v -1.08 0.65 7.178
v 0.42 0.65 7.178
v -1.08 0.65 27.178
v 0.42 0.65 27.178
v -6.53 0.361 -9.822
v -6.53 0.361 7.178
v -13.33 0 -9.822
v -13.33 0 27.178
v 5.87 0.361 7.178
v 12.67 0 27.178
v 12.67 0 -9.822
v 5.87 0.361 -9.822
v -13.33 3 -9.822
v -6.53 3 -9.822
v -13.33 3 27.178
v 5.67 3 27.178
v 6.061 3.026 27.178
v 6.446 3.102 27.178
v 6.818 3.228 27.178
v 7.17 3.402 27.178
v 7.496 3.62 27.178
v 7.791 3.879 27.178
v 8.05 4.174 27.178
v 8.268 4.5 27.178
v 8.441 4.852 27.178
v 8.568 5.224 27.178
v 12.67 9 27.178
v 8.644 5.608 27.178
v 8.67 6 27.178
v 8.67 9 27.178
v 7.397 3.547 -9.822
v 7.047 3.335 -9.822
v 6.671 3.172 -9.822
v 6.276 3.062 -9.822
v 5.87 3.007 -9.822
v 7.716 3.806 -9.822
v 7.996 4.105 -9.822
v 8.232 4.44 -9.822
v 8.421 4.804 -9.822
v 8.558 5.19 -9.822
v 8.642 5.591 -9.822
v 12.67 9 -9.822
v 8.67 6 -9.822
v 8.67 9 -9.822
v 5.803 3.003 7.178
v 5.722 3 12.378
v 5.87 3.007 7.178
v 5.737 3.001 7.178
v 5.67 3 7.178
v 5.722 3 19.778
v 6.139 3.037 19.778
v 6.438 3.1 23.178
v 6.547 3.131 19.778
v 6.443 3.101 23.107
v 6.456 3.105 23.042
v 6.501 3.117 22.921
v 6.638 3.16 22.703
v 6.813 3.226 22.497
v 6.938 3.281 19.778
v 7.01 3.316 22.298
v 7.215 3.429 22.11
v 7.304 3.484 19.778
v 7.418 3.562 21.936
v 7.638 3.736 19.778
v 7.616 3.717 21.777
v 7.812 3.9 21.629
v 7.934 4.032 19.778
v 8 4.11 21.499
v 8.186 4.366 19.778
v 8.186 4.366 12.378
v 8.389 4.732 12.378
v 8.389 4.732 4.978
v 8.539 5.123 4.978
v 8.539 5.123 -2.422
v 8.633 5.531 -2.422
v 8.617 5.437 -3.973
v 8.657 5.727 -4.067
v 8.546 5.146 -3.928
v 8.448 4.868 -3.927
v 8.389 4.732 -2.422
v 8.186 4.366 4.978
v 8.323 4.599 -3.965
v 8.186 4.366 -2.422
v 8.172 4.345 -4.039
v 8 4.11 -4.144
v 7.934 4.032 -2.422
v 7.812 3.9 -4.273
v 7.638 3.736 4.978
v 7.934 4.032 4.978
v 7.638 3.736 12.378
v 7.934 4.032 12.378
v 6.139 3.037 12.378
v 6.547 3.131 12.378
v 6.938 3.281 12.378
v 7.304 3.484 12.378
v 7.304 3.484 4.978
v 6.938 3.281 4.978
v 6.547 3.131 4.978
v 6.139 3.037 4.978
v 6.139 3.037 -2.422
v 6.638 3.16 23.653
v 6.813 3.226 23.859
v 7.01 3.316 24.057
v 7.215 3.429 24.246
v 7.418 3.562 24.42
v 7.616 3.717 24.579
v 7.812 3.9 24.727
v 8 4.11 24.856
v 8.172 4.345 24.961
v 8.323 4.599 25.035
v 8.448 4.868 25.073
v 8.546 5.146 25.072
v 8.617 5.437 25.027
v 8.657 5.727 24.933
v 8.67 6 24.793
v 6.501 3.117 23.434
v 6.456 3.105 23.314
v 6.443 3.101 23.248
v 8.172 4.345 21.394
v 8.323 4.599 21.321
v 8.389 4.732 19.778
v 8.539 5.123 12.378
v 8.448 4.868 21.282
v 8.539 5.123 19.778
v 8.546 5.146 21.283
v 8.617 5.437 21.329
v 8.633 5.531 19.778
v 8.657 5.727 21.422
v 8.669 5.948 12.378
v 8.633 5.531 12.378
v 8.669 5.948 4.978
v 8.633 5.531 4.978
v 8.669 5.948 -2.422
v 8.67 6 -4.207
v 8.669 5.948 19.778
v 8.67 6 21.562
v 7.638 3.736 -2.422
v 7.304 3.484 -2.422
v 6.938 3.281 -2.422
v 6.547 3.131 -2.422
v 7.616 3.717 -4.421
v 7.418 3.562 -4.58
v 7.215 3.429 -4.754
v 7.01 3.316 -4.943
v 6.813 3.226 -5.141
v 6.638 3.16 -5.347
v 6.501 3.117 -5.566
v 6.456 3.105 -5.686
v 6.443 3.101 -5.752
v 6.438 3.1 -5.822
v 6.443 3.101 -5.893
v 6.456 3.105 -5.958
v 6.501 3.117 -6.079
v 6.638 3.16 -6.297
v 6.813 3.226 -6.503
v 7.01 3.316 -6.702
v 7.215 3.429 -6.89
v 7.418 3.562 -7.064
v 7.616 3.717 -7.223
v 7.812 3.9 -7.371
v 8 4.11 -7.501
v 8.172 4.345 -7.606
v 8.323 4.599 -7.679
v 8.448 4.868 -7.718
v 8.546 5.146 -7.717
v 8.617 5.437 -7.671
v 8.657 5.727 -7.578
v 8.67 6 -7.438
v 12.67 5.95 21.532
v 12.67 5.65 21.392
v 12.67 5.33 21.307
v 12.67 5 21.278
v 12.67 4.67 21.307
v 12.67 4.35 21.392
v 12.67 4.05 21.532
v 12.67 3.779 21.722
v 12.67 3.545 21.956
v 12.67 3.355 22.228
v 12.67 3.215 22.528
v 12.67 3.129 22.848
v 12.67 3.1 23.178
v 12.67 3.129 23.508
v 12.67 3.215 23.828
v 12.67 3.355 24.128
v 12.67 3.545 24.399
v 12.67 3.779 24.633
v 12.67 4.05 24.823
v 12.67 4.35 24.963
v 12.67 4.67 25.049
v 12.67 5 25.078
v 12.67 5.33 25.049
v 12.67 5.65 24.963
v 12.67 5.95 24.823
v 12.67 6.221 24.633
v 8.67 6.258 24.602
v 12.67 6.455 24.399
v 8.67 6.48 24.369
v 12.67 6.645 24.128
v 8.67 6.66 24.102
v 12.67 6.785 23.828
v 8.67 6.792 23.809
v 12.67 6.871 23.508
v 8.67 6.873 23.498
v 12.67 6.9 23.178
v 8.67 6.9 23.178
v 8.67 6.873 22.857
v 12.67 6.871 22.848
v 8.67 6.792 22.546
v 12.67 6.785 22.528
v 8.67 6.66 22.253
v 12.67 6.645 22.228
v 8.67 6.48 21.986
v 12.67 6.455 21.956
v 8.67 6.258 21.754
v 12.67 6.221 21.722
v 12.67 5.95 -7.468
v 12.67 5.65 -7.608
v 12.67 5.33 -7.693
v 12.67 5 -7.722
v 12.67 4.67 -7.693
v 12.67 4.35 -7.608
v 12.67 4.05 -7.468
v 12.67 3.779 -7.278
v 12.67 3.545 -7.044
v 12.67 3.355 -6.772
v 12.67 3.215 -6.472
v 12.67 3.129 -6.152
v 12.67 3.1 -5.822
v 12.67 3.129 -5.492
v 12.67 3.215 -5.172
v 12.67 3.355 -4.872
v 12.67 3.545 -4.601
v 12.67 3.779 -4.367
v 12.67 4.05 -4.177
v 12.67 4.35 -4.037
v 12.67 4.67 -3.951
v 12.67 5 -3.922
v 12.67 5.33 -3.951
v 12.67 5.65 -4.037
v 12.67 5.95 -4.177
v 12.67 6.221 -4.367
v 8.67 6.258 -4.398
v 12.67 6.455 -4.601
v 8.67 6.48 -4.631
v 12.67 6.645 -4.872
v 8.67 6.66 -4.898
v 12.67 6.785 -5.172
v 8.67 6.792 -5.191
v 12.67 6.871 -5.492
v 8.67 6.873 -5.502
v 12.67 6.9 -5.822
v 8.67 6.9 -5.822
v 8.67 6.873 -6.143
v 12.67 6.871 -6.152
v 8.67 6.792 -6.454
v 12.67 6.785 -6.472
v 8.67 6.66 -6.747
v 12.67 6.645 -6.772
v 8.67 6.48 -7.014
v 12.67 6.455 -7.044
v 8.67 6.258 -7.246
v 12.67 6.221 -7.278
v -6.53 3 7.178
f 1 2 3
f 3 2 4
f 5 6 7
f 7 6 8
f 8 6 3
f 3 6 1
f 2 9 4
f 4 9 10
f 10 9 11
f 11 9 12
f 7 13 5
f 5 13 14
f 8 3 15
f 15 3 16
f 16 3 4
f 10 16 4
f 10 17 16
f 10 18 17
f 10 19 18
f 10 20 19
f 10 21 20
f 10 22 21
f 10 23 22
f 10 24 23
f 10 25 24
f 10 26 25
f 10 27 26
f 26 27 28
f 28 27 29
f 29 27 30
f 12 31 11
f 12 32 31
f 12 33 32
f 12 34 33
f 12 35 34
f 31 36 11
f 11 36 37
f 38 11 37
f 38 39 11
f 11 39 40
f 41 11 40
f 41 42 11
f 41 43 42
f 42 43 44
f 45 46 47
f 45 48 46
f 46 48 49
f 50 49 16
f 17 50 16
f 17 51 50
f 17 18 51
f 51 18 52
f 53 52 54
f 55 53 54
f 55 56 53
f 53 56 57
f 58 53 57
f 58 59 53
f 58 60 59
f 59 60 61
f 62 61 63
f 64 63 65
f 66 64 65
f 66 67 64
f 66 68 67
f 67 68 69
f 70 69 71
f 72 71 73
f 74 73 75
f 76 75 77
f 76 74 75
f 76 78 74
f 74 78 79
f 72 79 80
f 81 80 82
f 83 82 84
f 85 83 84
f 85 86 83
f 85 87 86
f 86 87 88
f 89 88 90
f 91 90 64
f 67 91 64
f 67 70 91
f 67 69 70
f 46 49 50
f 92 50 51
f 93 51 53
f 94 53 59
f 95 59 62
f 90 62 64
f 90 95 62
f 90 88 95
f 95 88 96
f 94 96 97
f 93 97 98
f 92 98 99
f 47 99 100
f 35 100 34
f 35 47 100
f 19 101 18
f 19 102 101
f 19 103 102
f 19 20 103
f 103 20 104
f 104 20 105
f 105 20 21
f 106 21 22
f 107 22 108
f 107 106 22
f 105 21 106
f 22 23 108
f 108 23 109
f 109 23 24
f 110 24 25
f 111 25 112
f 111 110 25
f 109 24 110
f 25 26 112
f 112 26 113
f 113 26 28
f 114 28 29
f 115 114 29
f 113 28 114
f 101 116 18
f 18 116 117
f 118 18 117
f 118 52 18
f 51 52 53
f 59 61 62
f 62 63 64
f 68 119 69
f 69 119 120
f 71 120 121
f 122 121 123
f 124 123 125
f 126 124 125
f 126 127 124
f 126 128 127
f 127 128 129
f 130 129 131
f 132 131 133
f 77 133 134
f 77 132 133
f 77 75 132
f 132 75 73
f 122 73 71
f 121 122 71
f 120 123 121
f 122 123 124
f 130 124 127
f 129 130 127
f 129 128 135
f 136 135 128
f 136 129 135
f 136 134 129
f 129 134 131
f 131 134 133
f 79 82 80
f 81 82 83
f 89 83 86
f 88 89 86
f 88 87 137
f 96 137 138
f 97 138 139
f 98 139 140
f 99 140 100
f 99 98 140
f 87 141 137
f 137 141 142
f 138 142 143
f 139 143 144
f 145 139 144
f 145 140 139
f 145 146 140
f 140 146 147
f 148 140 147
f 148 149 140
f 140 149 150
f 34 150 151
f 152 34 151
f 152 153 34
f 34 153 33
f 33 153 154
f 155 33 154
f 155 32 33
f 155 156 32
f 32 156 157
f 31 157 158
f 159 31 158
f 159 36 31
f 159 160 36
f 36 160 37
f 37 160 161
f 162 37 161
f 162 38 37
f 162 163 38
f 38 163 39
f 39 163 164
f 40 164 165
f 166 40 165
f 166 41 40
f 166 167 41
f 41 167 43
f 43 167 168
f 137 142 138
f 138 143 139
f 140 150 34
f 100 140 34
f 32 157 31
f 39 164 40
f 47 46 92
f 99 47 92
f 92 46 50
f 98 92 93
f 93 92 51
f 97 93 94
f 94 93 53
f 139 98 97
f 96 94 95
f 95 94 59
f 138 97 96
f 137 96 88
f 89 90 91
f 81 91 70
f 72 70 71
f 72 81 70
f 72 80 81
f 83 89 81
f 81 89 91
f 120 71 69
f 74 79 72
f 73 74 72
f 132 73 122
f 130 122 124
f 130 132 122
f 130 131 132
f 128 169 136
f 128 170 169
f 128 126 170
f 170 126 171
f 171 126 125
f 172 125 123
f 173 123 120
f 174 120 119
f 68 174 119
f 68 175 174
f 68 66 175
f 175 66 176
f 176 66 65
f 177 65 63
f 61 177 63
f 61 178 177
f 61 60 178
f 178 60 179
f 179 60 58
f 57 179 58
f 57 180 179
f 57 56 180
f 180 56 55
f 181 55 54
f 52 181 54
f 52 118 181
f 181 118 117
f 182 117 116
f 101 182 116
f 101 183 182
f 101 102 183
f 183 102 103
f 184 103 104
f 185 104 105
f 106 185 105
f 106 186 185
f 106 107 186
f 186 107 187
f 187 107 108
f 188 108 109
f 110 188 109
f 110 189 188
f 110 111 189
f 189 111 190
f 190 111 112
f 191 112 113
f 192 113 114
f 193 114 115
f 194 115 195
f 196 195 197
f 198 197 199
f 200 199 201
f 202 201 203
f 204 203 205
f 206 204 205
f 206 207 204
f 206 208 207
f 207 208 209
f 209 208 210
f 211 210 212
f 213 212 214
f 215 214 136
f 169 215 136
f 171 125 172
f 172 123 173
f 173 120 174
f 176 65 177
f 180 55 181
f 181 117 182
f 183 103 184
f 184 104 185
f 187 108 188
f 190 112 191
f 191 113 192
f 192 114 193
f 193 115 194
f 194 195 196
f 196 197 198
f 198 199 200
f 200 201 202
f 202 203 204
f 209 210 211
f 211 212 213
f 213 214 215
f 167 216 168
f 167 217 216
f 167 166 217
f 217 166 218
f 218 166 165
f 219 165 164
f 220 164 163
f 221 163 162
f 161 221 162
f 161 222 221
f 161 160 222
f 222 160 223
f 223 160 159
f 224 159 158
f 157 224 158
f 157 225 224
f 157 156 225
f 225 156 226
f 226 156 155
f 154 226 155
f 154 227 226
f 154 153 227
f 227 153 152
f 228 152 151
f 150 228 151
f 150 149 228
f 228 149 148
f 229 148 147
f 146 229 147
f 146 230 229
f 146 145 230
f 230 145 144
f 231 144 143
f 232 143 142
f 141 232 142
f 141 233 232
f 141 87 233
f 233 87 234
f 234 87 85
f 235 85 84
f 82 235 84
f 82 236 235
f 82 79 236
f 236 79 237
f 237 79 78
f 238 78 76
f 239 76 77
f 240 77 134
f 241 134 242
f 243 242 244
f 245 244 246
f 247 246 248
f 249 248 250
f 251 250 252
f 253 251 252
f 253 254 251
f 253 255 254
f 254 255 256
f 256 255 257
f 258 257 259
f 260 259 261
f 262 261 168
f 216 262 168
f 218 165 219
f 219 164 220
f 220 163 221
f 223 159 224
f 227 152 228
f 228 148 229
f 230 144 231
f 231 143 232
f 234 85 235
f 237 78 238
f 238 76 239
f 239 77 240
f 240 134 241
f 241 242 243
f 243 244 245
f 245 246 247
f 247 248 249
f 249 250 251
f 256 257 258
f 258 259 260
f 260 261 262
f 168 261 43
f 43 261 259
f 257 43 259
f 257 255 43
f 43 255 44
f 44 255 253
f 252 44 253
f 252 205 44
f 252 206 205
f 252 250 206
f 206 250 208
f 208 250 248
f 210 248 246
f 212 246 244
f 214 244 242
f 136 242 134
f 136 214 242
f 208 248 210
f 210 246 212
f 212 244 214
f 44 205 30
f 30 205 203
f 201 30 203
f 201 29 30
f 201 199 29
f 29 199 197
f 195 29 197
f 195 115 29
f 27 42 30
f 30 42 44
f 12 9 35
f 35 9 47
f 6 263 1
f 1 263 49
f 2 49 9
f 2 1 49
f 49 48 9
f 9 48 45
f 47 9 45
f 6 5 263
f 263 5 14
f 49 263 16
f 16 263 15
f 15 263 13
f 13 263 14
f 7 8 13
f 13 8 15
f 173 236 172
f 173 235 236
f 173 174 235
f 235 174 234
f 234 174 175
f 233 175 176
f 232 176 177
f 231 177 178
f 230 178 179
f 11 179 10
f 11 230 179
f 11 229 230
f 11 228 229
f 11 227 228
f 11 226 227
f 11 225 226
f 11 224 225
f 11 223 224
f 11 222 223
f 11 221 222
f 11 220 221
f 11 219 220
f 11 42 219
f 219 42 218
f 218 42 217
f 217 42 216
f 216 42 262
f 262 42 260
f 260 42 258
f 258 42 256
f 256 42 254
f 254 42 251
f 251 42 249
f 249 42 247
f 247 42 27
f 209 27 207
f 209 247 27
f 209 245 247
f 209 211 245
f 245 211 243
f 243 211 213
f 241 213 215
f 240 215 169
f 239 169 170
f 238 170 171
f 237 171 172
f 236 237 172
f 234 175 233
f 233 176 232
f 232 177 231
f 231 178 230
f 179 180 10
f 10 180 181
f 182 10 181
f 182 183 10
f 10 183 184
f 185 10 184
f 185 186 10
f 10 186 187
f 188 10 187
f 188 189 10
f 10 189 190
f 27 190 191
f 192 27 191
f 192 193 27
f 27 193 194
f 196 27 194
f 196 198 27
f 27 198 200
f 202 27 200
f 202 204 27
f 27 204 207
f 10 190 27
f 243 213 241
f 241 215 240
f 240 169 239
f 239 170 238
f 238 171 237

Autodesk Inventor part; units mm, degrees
ref_plane "YZ Plane" through (0, 0, 0) normal (1, 0, 0) x (0, 1, 0)
ref_plane "XZ Plane" through (0, 0, 0) normal (0, 1, 0) x (-1, 0, 0)
ref_plane "XY Plane" through (0, 0, 0) normal (0, 0, 1) x (1, 0, 0)
sketch "Sketch1" plane through (0, 0, 0) normal (0, 1, 0) x (-1, 0, 0)
  line L0 (13.3302, 27.1778) -> (-12.6698, 27.1778)
  line L1 (-12.6698, 27.1778) -> (-12.6698, -9.8222)
  line L2 (-12.6698, -9.8222) -> (13.3302, -9.8222)
  line L3 (13.3302, -9.8222) -> (13.3302, 27.1778)
  line L4 (6.5302, 7.1778) -> (-5.8698, 7.1778)
  line L5 (-5.8698, 7.1778) -> (-5.8698, -9.8222)
  line L6 (-5.8698, -9.8222) -> (6.5302, -9.8222)
  line L7 (6.5302, -9.8222) -> (6.5302, 7.1778)
  line L8 (-12.6698, 27.1778) -> (-8.6698, 27.1778)
  line L9 (-8.6698, 27.1778) -> (-8.6698, -9.8222)
  line L10 (-8.6698, -9.8222) -> (-12.6698, -9.8222)
  line L11 (-12.6698, -9.8222) -> (-12.6698, 27.1778)
  point P0 (0, 0)
  dimension "d0" = 26
  dimension "d1" = 37
  dimension "d2" = 6.8
  dimension "d3" = 6.8
  dimension "d4" = 17
  dimension "d5" = 4
extrude "Extrusion1" add sketch "Sketch1" along normal blind 3 contours L3 L2 L7 L4 L5 L9 L0 | L9 L2 L1 L0
extrude "Extrusion2" add sketch "Sketch1" along normal blind 9 contours L9 L2 L1 L0
sketch "Sketch2" plane through (12.6698, 0, 27.1778) normal (1, 0, 0) x (0, 0, -1)
  circle A0 centre (4, 5) radius 1.9
  circle A1 centre (33, 5) radius 1.9
  line L0 (0, 0) -> (0, 9) projected
  line L1 (37, 0) -> (37, 9) projected
  line L2 (0, 0) -> (37, 0) projected
  point P0 (27.1778, 0)
  dimension "d10" = 3.8
  dimension "d11" = 3.8
  dimension "d12" = 4
  dimension "d13" = 4
  dimension "d14" = 4
  dimension "d15" = 4
  dimension "d27" = 5
  dimension "d28" = 29
extrude "Extrusion3" cut sketch "Sketch2" against normal blind 8
fillet "Fillet1" radius 3 1 edges at (8.6698, 3, 8.6778)
sketch "Sketch3" plane through (-13.3302, 0, 27.1778) normal (0, 0, 1) x (1, 0, 0)
  line L0 (26, 0) -> (13.75, 0.65)
  line L1 (12.25, 0.65) -> (0, 0)
  line L2 (0, 0) -> (26, 0)
  line L3 (0, 0) -> (26, 0) projected
  line L4 (0, 0) -> (0, 3) projected
  line L5 (26, 0) -> (26, 9) projected
  line L6 (13.75, 0.65) -> (12.25, 0.65)
  point P0 (13.3302, 0)
  dimension "d21" = 26
  dimension "d24" = 0.65
  dimension "d25" = 1.5
  dimension "d26" = 12.25
extrude "Extrusion4" cut sketch "Sketch3" against normal blind 40
equation "\"d26\" = 0.5 * d21 - 0.5 * d25"
properties part number "psu rear brace"
